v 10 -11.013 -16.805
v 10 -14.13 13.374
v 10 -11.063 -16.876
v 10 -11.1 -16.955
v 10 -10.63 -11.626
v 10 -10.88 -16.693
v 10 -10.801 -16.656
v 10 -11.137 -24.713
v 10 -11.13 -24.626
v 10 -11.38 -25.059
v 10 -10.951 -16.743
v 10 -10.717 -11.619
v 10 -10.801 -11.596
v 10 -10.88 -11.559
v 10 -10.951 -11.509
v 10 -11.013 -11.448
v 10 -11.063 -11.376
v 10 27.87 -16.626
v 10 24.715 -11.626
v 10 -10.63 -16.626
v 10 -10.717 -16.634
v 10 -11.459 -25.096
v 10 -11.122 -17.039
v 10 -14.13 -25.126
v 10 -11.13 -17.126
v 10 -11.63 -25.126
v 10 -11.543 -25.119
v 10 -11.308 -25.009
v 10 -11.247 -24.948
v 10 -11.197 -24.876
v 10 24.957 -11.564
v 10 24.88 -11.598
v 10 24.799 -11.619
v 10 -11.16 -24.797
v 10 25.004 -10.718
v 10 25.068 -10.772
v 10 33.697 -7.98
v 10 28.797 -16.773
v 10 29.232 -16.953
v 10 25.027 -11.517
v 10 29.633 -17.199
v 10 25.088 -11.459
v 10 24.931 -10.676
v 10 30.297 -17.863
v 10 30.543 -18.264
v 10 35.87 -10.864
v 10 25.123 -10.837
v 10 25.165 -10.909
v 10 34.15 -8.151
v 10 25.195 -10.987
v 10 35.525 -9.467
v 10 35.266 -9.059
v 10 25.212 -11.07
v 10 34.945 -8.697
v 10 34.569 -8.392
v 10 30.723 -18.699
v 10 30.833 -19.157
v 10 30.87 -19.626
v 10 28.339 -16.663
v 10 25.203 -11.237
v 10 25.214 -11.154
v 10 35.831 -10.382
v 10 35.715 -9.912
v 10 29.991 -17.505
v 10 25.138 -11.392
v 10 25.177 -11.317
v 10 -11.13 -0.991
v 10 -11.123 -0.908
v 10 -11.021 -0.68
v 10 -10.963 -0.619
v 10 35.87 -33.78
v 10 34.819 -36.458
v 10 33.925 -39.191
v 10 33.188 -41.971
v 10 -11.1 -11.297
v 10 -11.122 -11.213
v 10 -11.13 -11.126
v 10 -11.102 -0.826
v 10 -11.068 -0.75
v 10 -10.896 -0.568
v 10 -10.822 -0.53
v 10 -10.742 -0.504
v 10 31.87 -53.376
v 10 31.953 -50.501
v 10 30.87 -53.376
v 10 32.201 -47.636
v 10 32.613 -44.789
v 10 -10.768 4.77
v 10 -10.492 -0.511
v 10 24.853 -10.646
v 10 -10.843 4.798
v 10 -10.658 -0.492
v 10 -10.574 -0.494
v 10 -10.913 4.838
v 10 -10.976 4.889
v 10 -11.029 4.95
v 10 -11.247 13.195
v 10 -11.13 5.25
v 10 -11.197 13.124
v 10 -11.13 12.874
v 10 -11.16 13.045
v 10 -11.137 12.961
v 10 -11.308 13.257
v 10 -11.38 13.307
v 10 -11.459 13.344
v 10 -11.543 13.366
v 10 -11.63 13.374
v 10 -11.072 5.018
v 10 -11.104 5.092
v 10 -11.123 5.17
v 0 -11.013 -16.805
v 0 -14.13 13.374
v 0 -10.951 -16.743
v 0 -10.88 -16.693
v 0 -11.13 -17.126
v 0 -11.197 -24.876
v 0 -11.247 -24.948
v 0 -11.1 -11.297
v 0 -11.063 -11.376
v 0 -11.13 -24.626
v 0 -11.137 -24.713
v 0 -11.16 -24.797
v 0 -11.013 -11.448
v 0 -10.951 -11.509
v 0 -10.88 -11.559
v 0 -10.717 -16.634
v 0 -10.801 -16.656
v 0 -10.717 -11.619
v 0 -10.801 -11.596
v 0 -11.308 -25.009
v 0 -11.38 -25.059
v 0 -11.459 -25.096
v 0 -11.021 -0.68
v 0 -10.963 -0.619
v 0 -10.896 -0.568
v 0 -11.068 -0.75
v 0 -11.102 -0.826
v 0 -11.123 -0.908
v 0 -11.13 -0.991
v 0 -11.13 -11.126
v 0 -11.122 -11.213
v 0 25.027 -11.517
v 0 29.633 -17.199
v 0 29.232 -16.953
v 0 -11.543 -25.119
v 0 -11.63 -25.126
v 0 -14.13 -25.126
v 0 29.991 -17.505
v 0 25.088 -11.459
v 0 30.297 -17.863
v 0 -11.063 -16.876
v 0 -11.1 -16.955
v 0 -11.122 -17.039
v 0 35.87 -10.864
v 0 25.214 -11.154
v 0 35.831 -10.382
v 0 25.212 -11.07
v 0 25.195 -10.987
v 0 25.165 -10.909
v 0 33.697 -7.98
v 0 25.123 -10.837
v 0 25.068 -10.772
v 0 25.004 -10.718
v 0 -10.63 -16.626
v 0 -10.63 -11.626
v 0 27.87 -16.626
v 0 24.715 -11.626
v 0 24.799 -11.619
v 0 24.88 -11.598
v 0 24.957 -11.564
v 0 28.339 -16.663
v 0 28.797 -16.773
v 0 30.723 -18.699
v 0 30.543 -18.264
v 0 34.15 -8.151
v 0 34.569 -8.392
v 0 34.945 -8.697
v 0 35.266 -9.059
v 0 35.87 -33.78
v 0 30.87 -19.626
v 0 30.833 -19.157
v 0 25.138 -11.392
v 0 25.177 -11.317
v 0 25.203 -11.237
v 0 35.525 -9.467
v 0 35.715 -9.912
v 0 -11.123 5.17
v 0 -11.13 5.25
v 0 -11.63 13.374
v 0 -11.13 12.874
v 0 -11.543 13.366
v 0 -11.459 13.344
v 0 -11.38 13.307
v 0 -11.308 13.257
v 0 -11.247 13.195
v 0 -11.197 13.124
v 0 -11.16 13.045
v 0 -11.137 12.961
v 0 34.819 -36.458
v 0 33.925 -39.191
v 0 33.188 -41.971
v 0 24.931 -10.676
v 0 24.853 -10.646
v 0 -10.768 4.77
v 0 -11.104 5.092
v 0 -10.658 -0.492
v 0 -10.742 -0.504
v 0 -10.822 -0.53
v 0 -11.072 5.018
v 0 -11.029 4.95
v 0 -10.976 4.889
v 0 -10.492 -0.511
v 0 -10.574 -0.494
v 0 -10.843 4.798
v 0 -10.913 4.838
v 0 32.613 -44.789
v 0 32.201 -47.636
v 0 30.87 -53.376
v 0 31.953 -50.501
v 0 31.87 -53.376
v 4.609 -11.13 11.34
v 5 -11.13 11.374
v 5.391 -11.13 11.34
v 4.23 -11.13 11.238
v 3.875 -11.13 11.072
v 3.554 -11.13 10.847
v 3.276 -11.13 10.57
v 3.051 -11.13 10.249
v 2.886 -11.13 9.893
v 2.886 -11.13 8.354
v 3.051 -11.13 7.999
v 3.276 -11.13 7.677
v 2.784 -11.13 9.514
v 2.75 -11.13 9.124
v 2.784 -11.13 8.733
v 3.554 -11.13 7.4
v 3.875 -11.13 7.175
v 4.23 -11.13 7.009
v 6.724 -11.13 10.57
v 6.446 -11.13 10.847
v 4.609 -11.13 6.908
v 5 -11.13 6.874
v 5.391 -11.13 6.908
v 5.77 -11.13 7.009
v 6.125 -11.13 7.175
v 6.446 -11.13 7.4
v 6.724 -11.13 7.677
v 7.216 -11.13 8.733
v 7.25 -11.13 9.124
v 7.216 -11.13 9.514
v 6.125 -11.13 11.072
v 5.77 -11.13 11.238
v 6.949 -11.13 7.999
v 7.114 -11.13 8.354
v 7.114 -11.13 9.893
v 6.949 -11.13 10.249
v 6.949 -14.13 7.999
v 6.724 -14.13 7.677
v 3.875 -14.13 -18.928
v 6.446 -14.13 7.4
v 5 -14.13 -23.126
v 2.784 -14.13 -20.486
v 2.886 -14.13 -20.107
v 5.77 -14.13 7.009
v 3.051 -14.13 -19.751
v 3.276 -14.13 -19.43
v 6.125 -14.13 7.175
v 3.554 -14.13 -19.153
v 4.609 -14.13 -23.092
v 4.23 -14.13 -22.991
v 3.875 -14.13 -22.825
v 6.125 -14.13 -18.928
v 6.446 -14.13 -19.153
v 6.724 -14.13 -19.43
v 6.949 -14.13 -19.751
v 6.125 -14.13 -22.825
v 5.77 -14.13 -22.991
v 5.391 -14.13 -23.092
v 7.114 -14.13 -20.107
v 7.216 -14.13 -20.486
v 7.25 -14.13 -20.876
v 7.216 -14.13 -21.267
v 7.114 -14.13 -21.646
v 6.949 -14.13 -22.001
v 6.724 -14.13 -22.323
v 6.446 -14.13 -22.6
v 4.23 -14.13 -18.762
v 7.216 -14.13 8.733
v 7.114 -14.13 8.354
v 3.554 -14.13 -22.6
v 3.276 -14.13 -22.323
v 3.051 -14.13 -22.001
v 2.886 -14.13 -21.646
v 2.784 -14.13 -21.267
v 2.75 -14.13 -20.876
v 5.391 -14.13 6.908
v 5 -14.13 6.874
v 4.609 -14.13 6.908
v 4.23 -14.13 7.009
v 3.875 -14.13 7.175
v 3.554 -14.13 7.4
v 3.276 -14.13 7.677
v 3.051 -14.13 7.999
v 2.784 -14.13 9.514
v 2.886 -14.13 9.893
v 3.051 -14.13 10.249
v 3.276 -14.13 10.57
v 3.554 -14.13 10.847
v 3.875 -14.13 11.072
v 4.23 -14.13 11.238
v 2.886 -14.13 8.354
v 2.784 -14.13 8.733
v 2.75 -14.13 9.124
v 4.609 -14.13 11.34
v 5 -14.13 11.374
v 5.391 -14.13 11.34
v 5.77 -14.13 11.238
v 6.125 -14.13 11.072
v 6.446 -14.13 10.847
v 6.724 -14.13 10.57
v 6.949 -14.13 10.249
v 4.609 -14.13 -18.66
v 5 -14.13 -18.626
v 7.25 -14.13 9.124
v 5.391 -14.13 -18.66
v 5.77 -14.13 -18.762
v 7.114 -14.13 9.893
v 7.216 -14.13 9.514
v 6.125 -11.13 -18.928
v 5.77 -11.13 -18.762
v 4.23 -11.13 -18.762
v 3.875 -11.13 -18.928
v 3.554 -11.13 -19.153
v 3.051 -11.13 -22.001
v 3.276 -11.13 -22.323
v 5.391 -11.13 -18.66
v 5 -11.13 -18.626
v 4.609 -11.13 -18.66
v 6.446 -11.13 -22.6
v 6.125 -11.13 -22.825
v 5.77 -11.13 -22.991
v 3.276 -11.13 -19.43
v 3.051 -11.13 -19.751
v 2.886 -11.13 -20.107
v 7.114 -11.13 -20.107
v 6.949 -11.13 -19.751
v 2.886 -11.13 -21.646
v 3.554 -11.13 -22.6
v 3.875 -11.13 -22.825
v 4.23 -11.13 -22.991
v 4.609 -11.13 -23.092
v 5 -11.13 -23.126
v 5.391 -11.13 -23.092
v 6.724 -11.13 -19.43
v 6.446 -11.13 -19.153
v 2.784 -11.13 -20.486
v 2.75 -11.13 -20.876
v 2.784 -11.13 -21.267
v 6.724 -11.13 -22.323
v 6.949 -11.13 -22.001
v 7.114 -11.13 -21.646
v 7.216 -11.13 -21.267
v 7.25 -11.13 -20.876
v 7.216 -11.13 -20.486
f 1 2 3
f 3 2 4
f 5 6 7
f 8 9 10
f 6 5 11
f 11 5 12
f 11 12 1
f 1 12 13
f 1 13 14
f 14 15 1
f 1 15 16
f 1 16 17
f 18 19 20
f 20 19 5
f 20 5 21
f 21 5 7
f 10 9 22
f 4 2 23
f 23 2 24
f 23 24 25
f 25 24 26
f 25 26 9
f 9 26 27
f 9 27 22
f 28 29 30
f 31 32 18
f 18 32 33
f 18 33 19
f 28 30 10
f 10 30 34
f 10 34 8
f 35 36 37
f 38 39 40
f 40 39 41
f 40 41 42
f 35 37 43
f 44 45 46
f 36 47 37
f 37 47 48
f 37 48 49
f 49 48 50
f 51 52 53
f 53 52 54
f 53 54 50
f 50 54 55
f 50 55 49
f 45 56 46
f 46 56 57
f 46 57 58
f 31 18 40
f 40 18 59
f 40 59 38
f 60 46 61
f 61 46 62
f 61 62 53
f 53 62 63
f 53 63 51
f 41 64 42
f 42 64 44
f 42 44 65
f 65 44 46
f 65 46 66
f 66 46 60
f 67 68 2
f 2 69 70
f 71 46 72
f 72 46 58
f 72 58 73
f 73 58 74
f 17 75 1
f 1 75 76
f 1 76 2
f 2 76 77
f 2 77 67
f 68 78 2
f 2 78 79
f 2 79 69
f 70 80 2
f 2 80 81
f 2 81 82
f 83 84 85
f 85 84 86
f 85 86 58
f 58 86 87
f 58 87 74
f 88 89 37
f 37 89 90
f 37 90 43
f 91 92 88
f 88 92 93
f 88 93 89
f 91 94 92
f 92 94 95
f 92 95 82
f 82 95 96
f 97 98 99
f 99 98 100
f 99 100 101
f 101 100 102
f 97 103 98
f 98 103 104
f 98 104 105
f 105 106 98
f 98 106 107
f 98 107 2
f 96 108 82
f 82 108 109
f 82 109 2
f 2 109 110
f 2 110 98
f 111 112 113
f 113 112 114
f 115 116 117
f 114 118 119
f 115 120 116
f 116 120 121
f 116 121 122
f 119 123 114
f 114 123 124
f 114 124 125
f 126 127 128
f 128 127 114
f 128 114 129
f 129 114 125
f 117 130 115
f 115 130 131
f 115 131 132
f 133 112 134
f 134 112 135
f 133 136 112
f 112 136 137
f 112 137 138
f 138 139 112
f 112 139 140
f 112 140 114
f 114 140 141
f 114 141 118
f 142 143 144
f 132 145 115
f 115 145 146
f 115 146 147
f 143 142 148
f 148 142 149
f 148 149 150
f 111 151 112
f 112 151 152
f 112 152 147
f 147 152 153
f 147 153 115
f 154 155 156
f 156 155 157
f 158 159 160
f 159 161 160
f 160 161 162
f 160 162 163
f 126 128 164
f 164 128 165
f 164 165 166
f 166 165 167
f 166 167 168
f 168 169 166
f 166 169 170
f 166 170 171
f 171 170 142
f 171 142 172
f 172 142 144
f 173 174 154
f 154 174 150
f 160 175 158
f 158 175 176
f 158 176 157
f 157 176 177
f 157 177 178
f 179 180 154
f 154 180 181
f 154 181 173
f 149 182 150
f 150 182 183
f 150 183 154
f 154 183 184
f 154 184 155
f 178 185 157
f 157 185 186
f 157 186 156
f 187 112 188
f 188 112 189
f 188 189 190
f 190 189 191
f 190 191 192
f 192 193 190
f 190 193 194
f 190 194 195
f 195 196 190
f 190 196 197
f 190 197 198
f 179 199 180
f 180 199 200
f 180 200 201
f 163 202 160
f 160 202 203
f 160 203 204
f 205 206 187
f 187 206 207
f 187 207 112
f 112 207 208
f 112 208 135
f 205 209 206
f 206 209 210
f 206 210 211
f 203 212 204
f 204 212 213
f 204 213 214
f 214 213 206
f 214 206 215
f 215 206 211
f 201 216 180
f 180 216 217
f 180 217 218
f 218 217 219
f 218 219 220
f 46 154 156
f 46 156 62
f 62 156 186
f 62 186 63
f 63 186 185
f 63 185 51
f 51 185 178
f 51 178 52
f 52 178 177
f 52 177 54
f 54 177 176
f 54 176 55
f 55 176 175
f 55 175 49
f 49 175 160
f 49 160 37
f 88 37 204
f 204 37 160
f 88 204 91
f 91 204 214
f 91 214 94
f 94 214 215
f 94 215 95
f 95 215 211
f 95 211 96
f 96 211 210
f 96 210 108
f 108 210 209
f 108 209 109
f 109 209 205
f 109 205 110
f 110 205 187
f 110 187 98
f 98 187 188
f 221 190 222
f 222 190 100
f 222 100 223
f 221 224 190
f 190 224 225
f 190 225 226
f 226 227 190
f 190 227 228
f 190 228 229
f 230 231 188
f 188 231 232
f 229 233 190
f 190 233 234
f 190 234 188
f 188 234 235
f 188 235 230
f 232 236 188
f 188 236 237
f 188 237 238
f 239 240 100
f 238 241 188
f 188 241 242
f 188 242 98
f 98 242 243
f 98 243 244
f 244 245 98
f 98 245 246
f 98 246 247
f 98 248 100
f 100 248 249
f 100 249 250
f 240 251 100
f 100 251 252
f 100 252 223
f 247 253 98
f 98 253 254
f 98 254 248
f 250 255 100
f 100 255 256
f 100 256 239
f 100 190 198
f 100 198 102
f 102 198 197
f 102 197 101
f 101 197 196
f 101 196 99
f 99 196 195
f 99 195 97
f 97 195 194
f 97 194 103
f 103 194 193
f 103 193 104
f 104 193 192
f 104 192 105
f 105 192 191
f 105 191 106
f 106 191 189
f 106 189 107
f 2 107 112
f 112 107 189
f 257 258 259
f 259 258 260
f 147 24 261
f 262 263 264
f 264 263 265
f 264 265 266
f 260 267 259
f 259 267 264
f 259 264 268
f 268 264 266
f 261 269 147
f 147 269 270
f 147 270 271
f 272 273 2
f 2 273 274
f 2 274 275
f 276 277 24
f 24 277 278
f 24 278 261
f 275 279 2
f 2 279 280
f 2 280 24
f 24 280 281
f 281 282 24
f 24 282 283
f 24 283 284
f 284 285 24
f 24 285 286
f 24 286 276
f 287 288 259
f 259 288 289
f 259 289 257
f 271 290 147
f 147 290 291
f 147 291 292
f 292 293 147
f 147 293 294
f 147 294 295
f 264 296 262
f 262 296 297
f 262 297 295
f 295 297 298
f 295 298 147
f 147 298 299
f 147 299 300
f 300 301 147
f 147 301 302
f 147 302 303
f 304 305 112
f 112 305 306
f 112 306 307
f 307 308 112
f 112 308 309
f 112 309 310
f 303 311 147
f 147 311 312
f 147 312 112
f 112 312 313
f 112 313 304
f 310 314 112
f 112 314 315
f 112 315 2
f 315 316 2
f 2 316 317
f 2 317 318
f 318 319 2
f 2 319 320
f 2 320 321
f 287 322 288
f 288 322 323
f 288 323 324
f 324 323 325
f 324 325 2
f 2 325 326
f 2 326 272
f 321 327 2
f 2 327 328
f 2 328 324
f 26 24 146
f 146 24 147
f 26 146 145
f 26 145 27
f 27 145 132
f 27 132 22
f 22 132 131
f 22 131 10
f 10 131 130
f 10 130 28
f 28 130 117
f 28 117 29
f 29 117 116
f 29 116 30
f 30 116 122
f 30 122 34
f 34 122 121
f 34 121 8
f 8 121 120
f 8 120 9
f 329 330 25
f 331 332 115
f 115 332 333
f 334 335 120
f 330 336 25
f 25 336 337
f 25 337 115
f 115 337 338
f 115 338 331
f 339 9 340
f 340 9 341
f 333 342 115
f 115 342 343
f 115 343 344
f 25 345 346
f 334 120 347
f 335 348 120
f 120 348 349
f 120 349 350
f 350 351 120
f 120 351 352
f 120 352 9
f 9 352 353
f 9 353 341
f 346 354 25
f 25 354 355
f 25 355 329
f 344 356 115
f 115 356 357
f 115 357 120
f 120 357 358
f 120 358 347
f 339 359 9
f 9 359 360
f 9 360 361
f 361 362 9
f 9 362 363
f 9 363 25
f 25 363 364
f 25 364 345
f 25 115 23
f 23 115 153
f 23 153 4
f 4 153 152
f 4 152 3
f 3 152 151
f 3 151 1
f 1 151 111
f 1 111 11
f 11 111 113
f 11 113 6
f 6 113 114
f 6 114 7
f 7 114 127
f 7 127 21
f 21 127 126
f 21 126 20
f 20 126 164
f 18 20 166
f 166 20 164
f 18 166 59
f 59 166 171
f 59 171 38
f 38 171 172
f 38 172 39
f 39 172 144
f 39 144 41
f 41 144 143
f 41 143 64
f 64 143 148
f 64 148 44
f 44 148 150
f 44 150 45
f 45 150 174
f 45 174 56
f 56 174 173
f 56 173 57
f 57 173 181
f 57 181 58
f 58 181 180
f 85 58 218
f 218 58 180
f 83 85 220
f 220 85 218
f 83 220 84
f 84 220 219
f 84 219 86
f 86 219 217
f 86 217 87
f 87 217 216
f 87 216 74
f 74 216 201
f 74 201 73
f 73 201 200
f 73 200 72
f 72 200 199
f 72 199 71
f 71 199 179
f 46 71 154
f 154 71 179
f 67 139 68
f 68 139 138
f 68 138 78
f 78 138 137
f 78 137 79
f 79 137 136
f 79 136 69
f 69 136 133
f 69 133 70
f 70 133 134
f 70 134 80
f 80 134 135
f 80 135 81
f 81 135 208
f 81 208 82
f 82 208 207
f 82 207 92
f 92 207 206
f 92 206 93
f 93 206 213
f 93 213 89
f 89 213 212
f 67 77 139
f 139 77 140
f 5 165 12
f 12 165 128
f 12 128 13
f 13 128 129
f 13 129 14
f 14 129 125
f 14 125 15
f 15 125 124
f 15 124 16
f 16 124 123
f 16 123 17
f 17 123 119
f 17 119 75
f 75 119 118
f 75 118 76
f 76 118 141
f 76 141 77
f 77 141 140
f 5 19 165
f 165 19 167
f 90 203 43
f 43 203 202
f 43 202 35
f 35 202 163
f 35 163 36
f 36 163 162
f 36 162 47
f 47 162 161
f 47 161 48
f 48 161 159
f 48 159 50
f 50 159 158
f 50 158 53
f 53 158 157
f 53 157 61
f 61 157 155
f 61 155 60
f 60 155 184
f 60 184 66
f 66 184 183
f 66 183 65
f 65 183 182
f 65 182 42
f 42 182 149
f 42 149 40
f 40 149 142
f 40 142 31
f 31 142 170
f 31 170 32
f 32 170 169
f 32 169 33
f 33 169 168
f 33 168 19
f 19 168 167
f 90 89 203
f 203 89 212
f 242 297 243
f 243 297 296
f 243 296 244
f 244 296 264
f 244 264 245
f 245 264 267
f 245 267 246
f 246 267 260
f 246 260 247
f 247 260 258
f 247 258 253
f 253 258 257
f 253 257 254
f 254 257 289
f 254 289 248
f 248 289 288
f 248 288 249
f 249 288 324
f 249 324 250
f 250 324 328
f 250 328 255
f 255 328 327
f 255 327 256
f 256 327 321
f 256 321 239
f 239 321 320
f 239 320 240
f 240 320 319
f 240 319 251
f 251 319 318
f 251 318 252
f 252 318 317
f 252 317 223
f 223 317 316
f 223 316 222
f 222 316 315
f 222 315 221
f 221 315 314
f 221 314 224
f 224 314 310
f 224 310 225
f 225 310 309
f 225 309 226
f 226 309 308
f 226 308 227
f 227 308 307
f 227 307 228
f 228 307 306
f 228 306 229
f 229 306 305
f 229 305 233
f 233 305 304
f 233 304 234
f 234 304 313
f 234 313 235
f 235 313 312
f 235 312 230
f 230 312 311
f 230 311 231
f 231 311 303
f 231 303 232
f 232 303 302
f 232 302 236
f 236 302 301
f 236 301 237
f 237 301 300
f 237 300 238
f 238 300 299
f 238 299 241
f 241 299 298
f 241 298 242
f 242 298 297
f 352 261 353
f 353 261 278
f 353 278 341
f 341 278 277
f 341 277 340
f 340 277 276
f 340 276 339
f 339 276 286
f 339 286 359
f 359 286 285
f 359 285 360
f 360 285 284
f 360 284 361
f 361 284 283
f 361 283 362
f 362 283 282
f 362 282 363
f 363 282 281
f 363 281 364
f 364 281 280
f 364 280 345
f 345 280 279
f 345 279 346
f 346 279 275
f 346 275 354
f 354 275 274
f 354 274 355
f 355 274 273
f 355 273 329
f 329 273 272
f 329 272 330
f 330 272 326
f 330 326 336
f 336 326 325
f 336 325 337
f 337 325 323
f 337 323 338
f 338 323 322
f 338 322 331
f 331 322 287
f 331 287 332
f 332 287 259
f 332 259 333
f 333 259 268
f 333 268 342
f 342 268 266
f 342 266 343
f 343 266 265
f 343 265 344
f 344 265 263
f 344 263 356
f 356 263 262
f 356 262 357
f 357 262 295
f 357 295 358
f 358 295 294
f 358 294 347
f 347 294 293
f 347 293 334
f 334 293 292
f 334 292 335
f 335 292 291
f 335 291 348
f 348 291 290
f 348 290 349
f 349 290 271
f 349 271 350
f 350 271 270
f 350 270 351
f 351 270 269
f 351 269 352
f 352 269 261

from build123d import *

# Parameters (mm, degrees)
BOSS_EXTRUDE1_DEPTH = 10
SKETCH1_5_OUTSIDE_W = 85.55
SKETCH1_5_OUTSIDE_H = 68.8
CUT_EXTRUDE2_DEPTH  = 10
SKETCH5_R           = 2.25
CUT_EXTRUDE3_DEPTH  = 10


with BuildPart() as part:
    # Sketch1 → Boss-Extrude1 (new body)
    with BuildSketch(Plane(origin=(0, 0, 0), x_dir=(0, 0, -1), z_dir=(1, 0, 0))):
        with BuildLine():
            Line((7.980196803, 33.697050156), (-4.769859567, -10.767680589))
            ThreePointArc((-4.769859567, -10.767680589), (-4.949582903, -11.029179666), (-5.250490415, -11.129861911))
            Line((-5.250490415, -11.129861911), (-12.87371339, -11.129861911))
            ThreePointArc((-12.87371339, -11.129861911), (-13.227266781, -11.276308521), (-13.37371339, -11.629861911))
            Line((-13.37371339, -11.629861911), (-13.37371339, -14.129861911))
            Line((-13.37371339, -14.129861911), (25.12628661, -14.129861911))
            Line((25.12628661, -14.129861911), (25.12628661, -11.629861911))
            ThreePointArc((25.12628661, -11.629861911), (24.979840001, -11.276308521), (24.62628661, -11.129861911))
            Line((24.62628661, -11.129861911), (17.12628661, -11.129861911))
            ThreePointArc((17.12628661, -11.129861911), (16.772733219, -10.983415302), (16.62628661, -10.629861911))
            Line((16.62628661, -10.629861911), (16.62628661, 27.870138089))
            ThreePointArc((16.62628661, 27.870138089), (17.504966266, 29.991458432), (19.62628661, 30.870138089))
            Line((19.62628661, 30.870138089), (53.37628661, 30.870138089))
            Line((53.37628661, 30.870138089), (53.37628661, 31.870138089))
            ThreePointArc((53.37628661, 31.870138089), (43.37628661, 32.880343233), (33.780368668, 35.870138089))
            Line((33.780368668, 35.870138089), (10.863981891, 35.870138089))
            ThreePointArc((10.863981891, 35.870138089), (9.058536822, 35.266044619), (7.980196803, 33.697050156))
        make_face()
    extrude(amount=BOSS_EXTRUDE1_DEPTH)

    # Sketch1<5> outside → Cut-Extrude2 (cut)
    # profile 1 of 2: a face of its own
    with BuildSketch(Plane(origin=(0, 0, 0), x_dir=(0, 0, -1), z_dir=(1, 0, 0))):
        with Locations((20.001, 10.87)):
            Rectangle(SKETCH1_5_OUTSIDE_W, SKETCH1_5_OUTSIDE_H)
        with BuildLine():
            Line((7.980196803, 33.697050156), (-4.769859567, -10.767680589))
            ThreePointArc((-4.769859567, -10.767680589), (-4.949582903, -11.029179666), (-5.250490415, -11.129861911))
            Line((-5.250490415, -11.129861911), (-12.87371339, -11.129861911))
            ThreePointArc((-12.87371339, -11.129861911), (-13.227266781, -11.276308521), (-13.37371339, -11.629861911))
            Line((-13.37371339, -11.629861911), (-13.37371339, -14.129861911))
            Line((-13.37371339, -14.129861911), (25.12628661, -14.129861911))
            Line((25.12628661, -14.129861911), (25.12628661, -11.629861911))
            ThreePointArc((25.12628661, -11.629861911), (24.979840001, -11.276308521), (24.62628661, -11.129861911))
            Line((24.62628661, -11.129861911), (17.12628661, -11.129861911))
            ThreePointArc((17.12628661, -11.129861911), (16.772733219, -10.983415302), (16.62628661, -10.629861911))
            Line((16.62628661, -10.629861911), (16.62628661, 27.870138089))
            ThreePointArc((16.62628661, 27.870138089), (17.504966266, 29.991458432), (19.62628661, 30.870138089))
            Line((19.62628661, 30.870138089), (53.37628661, 30.870138089))
            Line((53.37628661, 30.870138089), (53.37628661, 31.870138089))
            ThreePointArc((53.37628661, 31.870138089), (43.37628661, 32.880343233), (33.780368668, 35.870138089))
            Line((33.780368668, 35.870138089), (10.863981891, 35.870138089))
            ThreePointArc((10.863981891, 35.870138089), (9.058536822, 35.266044619), (7.980196803, 33.697050156))
        make_face(mode=Mode.SUBTRACT)
    # profile 2 of 2: a face of its own
    with BuildSketch(Plane(origin=(0, 0, 0), x_dir=(0, 0, -1), z_dir=(1, 0, 0))):
        with BuildLine():
            Line((0.9913062, -11.129861911), (11.12628661, -11.129861911))
            ThreePointArc((11.12628661, -11.129861911), (11.479840001, -10.983415302), (11.62628661, -10.629861911))
            Line((11.62628661, -10.629861911), (11.62628661, 24.715015158))
            ThreePointArc((11.62628661, 24.715015158), (11.195873161, 25.210149192), (10.645655762, 24.852833836))
            Line((10.645655762, 24.852833836), (0.510675352, -10.492043234))
            ThreePointArc((0.510675352, -10.492043234), (0.591988445, -10.930769423), (0.9913062, -11.129861911))
        make_face()
    extrude(amount=CUT_EXTRUDE2_DEPTH, mode=Mode.SUBTRACT)

    # Sketch5 → Cut-Extrude3 (cut)
    with BuildSketch(Plane.XZ.offset(14.129861911)):
        with Locations((5, 9.12371339)):
            Circle(SKETCH5_R)
        with Locations((5, -20.87628661)):
            Circle(SKETCH5_R)
    extrude(amount=-CUT_EXTRUDE3_DEPTH, mode=Mode.SUBTRACT)


solid = part.part
